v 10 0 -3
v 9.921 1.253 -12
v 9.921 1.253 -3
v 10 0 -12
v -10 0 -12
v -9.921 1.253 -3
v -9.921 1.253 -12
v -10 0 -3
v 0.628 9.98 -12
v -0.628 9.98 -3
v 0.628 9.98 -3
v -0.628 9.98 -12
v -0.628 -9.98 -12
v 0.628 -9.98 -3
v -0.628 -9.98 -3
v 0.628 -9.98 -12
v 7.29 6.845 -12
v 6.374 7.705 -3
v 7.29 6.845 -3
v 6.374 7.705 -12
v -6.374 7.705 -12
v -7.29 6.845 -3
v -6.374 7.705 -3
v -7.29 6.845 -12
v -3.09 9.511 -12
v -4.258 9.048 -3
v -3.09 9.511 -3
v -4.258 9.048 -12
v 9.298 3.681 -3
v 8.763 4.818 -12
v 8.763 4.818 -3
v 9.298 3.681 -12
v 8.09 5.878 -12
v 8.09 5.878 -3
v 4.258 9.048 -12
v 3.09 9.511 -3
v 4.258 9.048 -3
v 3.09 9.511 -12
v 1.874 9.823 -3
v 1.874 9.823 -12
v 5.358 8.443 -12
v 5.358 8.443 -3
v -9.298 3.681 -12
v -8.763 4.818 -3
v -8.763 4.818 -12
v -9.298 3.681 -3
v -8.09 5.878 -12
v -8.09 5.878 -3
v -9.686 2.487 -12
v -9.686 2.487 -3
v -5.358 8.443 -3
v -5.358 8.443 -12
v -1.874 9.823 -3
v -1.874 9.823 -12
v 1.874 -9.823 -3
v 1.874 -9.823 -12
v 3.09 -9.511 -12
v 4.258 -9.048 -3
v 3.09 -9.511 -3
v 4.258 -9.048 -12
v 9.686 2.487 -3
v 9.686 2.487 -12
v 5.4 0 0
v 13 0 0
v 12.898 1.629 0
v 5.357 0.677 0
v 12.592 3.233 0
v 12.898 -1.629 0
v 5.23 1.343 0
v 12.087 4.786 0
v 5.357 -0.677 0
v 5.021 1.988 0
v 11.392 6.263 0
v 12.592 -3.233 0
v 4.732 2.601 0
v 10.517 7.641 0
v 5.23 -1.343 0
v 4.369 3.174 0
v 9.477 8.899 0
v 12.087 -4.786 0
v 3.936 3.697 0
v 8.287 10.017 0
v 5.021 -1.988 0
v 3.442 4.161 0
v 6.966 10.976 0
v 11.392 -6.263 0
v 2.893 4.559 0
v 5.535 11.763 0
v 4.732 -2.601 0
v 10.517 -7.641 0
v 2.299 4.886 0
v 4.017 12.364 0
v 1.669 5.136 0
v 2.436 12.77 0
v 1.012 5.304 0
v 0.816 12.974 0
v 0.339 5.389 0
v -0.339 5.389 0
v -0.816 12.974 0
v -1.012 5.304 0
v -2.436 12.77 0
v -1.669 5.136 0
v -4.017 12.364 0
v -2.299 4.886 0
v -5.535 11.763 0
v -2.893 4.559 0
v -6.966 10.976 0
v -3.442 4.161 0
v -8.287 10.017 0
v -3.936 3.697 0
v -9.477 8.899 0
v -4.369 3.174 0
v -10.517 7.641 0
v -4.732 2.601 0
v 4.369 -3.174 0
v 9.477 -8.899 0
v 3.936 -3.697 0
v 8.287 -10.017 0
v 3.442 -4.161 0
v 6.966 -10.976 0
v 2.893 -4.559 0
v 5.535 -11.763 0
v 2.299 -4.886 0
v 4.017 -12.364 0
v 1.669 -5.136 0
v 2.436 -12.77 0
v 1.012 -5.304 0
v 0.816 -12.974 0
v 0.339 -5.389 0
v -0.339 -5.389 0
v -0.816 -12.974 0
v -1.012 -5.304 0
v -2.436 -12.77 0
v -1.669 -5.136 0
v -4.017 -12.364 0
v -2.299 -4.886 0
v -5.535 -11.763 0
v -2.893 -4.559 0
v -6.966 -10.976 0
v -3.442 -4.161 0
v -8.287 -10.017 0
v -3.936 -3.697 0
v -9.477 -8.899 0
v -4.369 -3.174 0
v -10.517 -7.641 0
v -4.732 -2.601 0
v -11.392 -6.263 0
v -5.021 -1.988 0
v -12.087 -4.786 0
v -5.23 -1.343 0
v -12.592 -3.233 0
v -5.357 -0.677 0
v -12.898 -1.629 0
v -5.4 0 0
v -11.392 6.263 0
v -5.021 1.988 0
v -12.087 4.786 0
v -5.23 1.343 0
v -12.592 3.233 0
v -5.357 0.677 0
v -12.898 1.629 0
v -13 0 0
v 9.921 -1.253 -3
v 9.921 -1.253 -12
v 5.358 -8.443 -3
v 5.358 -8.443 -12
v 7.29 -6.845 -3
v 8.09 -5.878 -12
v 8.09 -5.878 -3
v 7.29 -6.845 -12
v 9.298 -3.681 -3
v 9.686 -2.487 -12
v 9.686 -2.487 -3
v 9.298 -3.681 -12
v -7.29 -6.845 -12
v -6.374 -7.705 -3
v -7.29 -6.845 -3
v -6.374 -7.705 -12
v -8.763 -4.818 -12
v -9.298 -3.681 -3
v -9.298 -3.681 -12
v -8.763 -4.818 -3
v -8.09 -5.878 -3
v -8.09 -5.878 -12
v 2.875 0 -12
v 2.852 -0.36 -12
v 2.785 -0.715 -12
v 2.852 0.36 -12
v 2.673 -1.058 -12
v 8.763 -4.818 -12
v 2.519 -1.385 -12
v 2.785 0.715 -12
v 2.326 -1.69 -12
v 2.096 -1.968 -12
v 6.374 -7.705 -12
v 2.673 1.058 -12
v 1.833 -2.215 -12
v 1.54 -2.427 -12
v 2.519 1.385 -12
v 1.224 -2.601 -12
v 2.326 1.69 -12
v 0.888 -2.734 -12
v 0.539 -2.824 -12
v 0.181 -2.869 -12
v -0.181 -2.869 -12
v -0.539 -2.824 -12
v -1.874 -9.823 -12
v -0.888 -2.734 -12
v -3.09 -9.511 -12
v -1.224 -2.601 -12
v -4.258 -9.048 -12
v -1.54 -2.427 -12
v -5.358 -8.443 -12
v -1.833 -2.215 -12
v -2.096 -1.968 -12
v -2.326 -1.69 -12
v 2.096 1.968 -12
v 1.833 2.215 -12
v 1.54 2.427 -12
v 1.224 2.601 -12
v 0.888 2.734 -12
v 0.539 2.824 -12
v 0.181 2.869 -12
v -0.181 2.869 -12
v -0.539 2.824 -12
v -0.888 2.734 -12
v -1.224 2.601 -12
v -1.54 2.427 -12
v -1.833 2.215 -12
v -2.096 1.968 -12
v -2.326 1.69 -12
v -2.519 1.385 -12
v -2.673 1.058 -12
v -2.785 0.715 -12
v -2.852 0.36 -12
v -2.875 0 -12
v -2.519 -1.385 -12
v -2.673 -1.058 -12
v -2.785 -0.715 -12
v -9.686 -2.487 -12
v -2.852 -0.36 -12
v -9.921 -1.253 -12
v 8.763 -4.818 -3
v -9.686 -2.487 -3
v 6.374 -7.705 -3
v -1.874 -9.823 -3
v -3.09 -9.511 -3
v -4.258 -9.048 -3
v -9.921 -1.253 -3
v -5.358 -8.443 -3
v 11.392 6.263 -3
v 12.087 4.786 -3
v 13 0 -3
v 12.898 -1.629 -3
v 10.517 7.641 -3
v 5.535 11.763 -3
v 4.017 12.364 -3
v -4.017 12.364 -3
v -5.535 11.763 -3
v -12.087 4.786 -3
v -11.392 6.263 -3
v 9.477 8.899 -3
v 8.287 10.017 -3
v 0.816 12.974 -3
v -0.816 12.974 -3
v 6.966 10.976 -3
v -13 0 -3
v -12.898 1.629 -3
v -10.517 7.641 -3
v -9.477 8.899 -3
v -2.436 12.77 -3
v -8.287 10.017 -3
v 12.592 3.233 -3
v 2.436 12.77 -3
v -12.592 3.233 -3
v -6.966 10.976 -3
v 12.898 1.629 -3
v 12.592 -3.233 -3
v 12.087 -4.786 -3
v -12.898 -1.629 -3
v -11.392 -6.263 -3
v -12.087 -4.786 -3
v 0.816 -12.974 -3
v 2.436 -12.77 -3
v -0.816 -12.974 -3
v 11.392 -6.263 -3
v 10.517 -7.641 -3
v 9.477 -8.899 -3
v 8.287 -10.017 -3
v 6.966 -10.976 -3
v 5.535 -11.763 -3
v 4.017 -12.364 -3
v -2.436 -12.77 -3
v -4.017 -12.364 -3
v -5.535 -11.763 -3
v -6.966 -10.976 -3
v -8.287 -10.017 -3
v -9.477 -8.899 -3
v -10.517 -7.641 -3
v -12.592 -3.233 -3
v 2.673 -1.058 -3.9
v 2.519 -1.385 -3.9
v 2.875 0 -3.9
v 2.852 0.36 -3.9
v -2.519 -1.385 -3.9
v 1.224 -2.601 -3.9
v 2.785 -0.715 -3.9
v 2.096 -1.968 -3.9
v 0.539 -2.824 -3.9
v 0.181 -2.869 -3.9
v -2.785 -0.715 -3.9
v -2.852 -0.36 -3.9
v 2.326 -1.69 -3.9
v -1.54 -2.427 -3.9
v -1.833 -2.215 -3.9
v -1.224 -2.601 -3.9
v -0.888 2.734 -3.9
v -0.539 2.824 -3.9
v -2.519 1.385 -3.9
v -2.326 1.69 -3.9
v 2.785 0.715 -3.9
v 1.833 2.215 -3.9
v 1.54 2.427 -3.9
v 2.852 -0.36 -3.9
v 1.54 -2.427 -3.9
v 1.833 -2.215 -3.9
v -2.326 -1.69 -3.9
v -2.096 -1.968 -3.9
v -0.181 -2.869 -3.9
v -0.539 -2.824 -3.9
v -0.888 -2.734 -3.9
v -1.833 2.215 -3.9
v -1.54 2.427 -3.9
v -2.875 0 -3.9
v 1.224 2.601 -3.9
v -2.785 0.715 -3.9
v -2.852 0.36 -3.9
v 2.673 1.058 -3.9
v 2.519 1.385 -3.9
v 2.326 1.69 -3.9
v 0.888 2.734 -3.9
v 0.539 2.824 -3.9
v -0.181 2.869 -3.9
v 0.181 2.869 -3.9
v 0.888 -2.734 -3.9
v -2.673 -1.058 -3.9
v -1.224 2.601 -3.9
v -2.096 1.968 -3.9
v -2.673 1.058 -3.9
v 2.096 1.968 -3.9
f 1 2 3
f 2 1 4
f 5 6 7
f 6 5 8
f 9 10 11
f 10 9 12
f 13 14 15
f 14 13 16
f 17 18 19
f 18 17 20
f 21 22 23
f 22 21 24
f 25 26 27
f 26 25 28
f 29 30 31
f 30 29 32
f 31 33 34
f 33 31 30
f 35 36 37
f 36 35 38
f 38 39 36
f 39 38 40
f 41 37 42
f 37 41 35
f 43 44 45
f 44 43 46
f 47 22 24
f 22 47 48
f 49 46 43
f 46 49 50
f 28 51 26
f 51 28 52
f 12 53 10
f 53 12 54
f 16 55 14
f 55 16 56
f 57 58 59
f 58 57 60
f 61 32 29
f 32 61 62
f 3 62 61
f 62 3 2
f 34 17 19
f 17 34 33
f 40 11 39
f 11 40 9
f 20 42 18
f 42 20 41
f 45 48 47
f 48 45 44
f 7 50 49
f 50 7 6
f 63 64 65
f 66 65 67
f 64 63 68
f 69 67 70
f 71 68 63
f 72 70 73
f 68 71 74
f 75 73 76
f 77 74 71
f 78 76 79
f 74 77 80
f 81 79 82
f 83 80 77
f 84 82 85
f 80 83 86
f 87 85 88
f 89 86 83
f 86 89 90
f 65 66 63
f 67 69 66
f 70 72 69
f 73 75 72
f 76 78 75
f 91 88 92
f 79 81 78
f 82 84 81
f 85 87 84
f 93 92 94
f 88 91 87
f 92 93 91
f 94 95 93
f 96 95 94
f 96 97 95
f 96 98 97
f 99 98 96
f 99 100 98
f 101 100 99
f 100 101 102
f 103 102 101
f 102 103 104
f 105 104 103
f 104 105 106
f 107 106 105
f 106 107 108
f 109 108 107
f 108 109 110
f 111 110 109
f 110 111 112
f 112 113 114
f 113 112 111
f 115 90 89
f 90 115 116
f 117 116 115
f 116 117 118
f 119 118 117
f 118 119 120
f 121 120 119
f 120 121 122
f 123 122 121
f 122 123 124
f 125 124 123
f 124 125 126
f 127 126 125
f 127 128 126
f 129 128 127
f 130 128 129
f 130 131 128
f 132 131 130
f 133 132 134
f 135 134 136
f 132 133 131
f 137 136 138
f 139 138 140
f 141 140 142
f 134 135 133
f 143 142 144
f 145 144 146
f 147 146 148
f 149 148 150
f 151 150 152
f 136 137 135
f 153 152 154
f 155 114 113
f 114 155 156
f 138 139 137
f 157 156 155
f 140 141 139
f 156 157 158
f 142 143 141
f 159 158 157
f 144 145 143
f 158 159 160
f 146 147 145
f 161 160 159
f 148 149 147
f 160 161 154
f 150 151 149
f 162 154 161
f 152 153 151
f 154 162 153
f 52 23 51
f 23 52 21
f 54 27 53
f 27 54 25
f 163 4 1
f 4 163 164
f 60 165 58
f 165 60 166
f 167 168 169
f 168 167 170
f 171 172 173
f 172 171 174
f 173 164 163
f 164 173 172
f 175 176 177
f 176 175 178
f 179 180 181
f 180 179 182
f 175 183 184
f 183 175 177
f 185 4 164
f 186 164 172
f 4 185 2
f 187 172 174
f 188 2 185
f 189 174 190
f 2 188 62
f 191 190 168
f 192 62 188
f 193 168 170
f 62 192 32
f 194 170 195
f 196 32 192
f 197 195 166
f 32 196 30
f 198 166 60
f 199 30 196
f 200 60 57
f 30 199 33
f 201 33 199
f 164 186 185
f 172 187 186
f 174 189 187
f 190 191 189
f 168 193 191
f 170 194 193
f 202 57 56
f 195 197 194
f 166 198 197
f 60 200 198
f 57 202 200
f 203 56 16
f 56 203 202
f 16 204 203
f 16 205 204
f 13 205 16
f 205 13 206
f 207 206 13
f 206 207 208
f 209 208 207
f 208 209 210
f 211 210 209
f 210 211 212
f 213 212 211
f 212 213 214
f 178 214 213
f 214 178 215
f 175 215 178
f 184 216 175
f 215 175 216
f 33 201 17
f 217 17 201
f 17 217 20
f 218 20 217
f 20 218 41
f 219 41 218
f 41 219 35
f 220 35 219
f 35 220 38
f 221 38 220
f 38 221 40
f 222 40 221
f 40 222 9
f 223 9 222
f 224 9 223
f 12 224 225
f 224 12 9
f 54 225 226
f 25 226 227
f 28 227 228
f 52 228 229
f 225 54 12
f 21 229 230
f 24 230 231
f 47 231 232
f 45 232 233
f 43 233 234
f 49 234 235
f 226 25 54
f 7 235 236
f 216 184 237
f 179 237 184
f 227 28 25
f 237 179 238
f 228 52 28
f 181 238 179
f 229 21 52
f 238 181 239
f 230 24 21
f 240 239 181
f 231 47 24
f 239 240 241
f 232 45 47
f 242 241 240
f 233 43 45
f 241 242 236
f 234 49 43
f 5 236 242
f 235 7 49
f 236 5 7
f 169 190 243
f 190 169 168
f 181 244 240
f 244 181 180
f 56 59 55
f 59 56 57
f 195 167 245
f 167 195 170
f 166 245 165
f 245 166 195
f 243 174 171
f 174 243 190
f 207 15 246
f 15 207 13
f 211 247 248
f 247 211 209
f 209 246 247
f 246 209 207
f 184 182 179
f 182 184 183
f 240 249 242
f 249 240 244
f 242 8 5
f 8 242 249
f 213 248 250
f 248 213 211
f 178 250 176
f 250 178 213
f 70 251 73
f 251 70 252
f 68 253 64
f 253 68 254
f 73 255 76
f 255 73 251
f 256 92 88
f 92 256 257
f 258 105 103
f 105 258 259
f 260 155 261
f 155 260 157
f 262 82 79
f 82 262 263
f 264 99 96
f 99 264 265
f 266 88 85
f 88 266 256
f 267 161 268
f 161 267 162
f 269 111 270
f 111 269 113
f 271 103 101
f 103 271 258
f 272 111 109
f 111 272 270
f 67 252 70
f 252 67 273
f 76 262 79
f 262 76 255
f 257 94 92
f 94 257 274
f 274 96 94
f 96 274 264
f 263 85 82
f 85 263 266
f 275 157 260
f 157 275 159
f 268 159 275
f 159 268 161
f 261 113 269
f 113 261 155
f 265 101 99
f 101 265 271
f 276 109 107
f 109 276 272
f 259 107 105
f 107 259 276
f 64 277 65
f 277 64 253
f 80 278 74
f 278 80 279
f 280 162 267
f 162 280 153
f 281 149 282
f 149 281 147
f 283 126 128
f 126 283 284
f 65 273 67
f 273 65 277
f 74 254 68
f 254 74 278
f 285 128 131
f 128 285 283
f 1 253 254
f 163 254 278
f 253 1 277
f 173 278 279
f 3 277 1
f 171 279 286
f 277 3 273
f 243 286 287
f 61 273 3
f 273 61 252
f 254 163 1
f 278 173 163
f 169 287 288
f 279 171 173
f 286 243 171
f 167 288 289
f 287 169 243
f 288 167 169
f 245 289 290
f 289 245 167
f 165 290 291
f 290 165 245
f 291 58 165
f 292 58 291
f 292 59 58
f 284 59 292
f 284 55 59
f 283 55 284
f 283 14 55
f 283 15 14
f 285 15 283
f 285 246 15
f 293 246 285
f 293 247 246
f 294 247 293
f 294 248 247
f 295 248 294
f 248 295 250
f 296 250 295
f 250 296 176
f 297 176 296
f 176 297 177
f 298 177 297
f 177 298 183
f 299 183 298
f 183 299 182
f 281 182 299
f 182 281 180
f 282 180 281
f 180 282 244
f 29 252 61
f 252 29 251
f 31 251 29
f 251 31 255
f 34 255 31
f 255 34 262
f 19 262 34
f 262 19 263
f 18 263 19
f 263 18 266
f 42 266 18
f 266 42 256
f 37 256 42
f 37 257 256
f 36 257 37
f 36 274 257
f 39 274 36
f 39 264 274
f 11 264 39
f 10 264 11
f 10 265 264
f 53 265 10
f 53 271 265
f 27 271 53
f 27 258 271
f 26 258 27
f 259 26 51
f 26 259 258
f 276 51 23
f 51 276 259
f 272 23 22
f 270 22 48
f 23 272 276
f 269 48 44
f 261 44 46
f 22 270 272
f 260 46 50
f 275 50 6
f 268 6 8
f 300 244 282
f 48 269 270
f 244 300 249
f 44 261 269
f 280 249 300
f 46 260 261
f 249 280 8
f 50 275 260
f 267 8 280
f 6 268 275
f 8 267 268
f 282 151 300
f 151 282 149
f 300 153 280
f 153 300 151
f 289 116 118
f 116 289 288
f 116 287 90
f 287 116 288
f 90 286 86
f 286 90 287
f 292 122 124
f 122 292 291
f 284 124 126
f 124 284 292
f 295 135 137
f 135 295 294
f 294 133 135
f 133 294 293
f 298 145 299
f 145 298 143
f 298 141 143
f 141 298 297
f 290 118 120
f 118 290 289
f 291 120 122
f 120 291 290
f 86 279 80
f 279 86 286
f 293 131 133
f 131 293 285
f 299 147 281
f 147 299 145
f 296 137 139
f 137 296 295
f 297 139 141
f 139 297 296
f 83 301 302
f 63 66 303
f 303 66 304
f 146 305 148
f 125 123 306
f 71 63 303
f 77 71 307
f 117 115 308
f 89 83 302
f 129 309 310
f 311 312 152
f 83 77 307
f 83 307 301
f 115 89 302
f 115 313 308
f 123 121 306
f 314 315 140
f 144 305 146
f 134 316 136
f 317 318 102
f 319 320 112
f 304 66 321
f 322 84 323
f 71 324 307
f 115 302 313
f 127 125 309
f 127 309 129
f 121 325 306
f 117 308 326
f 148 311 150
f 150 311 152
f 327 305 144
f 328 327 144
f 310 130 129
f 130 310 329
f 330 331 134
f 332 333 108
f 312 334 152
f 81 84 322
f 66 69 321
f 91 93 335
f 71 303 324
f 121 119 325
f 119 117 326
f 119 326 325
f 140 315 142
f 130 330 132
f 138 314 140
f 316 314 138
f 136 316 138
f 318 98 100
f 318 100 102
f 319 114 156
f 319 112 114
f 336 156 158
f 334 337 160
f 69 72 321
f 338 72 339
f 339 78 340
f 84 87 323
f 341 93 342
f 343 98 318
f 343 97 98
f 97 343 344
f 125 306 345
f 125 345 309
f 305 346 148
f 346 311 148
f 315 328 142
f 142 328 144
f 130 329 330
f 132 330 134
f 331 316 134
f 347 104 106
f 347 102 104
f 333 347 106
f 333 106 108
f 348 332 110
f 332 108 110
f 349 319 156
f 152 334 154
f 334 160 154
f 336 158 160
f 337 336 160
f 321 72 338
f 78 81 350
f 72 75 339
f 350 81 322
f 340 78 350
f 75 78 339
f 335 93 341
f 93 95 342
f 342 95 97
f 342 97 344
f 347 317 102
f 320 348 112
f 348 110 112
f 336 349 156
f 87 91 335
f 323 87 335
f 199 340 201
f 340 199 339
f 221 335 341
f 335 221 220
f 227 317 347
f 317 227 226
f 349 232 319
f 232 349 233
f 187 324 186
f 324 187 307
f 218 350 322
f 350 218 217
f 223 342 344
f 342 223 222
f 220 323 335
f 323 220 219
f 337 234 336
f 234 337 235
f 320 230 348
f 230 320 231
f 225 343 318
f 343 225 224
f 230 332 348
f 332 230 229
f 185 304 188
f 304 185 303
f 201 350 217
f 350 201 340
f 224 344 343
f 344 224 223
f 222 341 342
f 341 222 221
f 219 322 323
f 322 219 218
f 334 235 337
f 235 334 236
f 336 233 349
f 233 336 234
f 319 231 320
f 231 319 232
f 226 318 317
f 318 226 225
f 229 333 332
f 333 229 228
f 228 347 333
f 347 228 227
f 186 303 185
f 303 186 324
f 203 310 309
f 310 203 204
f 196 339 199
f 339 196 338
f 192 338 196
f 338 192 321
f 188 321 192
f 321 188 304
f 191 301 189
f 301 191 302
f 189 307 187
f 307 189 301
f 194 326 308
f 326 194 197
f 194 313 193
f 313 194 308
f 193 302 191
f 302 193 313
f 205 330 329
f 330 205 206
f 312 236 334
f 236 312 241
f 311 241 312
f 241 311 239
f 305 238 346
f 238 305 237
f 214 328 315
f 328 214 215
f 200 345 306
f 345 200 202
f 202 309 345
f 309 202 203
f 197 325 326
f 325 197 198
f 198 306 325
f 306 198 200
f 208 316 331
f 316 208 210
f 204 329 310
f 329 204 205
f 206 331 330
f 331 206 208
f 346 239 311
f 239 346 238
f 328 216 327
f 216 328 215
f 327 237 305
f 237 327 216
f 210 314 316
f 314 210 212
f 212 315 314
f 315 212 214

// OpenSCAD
$fn = 50;


difference() {
	union() {
		translate(v = [0, 0, -12.0000000000]) {
			cylinder(h = 12, r = 10.0000000000);
		}
		translate(v = [0, 0, -3.0000000000]) {
			cylinder(h = 3, r = 13.0000000000);
		}
	}
	union() {
		translate(v = [0, 0, 0]) {
			rotate(a = [0, 0, 0]) {
				difference() {
					union() {
						#translate(v = [0, 0, -12.0000000000]) {
							cylinder(h = 12, r = 2.6000000000);
						}
						#translate(v = [0, 0, -3.9000000000]) {
							cylinder(h = 3.9000000000, r = 10.0000000000, r1 = 2.8750000000, r2 = 5.4000000000);
						}
						#translate(v = [0, 0, -12.0000000000]) {
							cylinder(h = 12, r = 2.8750000000);
						}
						#translate(v = [0, 0, -12.0000000000]) {
							cylinder(h = 12, r = 2.6000000000);
						}
					}
					union();
				}
			}
		}
	}
}
